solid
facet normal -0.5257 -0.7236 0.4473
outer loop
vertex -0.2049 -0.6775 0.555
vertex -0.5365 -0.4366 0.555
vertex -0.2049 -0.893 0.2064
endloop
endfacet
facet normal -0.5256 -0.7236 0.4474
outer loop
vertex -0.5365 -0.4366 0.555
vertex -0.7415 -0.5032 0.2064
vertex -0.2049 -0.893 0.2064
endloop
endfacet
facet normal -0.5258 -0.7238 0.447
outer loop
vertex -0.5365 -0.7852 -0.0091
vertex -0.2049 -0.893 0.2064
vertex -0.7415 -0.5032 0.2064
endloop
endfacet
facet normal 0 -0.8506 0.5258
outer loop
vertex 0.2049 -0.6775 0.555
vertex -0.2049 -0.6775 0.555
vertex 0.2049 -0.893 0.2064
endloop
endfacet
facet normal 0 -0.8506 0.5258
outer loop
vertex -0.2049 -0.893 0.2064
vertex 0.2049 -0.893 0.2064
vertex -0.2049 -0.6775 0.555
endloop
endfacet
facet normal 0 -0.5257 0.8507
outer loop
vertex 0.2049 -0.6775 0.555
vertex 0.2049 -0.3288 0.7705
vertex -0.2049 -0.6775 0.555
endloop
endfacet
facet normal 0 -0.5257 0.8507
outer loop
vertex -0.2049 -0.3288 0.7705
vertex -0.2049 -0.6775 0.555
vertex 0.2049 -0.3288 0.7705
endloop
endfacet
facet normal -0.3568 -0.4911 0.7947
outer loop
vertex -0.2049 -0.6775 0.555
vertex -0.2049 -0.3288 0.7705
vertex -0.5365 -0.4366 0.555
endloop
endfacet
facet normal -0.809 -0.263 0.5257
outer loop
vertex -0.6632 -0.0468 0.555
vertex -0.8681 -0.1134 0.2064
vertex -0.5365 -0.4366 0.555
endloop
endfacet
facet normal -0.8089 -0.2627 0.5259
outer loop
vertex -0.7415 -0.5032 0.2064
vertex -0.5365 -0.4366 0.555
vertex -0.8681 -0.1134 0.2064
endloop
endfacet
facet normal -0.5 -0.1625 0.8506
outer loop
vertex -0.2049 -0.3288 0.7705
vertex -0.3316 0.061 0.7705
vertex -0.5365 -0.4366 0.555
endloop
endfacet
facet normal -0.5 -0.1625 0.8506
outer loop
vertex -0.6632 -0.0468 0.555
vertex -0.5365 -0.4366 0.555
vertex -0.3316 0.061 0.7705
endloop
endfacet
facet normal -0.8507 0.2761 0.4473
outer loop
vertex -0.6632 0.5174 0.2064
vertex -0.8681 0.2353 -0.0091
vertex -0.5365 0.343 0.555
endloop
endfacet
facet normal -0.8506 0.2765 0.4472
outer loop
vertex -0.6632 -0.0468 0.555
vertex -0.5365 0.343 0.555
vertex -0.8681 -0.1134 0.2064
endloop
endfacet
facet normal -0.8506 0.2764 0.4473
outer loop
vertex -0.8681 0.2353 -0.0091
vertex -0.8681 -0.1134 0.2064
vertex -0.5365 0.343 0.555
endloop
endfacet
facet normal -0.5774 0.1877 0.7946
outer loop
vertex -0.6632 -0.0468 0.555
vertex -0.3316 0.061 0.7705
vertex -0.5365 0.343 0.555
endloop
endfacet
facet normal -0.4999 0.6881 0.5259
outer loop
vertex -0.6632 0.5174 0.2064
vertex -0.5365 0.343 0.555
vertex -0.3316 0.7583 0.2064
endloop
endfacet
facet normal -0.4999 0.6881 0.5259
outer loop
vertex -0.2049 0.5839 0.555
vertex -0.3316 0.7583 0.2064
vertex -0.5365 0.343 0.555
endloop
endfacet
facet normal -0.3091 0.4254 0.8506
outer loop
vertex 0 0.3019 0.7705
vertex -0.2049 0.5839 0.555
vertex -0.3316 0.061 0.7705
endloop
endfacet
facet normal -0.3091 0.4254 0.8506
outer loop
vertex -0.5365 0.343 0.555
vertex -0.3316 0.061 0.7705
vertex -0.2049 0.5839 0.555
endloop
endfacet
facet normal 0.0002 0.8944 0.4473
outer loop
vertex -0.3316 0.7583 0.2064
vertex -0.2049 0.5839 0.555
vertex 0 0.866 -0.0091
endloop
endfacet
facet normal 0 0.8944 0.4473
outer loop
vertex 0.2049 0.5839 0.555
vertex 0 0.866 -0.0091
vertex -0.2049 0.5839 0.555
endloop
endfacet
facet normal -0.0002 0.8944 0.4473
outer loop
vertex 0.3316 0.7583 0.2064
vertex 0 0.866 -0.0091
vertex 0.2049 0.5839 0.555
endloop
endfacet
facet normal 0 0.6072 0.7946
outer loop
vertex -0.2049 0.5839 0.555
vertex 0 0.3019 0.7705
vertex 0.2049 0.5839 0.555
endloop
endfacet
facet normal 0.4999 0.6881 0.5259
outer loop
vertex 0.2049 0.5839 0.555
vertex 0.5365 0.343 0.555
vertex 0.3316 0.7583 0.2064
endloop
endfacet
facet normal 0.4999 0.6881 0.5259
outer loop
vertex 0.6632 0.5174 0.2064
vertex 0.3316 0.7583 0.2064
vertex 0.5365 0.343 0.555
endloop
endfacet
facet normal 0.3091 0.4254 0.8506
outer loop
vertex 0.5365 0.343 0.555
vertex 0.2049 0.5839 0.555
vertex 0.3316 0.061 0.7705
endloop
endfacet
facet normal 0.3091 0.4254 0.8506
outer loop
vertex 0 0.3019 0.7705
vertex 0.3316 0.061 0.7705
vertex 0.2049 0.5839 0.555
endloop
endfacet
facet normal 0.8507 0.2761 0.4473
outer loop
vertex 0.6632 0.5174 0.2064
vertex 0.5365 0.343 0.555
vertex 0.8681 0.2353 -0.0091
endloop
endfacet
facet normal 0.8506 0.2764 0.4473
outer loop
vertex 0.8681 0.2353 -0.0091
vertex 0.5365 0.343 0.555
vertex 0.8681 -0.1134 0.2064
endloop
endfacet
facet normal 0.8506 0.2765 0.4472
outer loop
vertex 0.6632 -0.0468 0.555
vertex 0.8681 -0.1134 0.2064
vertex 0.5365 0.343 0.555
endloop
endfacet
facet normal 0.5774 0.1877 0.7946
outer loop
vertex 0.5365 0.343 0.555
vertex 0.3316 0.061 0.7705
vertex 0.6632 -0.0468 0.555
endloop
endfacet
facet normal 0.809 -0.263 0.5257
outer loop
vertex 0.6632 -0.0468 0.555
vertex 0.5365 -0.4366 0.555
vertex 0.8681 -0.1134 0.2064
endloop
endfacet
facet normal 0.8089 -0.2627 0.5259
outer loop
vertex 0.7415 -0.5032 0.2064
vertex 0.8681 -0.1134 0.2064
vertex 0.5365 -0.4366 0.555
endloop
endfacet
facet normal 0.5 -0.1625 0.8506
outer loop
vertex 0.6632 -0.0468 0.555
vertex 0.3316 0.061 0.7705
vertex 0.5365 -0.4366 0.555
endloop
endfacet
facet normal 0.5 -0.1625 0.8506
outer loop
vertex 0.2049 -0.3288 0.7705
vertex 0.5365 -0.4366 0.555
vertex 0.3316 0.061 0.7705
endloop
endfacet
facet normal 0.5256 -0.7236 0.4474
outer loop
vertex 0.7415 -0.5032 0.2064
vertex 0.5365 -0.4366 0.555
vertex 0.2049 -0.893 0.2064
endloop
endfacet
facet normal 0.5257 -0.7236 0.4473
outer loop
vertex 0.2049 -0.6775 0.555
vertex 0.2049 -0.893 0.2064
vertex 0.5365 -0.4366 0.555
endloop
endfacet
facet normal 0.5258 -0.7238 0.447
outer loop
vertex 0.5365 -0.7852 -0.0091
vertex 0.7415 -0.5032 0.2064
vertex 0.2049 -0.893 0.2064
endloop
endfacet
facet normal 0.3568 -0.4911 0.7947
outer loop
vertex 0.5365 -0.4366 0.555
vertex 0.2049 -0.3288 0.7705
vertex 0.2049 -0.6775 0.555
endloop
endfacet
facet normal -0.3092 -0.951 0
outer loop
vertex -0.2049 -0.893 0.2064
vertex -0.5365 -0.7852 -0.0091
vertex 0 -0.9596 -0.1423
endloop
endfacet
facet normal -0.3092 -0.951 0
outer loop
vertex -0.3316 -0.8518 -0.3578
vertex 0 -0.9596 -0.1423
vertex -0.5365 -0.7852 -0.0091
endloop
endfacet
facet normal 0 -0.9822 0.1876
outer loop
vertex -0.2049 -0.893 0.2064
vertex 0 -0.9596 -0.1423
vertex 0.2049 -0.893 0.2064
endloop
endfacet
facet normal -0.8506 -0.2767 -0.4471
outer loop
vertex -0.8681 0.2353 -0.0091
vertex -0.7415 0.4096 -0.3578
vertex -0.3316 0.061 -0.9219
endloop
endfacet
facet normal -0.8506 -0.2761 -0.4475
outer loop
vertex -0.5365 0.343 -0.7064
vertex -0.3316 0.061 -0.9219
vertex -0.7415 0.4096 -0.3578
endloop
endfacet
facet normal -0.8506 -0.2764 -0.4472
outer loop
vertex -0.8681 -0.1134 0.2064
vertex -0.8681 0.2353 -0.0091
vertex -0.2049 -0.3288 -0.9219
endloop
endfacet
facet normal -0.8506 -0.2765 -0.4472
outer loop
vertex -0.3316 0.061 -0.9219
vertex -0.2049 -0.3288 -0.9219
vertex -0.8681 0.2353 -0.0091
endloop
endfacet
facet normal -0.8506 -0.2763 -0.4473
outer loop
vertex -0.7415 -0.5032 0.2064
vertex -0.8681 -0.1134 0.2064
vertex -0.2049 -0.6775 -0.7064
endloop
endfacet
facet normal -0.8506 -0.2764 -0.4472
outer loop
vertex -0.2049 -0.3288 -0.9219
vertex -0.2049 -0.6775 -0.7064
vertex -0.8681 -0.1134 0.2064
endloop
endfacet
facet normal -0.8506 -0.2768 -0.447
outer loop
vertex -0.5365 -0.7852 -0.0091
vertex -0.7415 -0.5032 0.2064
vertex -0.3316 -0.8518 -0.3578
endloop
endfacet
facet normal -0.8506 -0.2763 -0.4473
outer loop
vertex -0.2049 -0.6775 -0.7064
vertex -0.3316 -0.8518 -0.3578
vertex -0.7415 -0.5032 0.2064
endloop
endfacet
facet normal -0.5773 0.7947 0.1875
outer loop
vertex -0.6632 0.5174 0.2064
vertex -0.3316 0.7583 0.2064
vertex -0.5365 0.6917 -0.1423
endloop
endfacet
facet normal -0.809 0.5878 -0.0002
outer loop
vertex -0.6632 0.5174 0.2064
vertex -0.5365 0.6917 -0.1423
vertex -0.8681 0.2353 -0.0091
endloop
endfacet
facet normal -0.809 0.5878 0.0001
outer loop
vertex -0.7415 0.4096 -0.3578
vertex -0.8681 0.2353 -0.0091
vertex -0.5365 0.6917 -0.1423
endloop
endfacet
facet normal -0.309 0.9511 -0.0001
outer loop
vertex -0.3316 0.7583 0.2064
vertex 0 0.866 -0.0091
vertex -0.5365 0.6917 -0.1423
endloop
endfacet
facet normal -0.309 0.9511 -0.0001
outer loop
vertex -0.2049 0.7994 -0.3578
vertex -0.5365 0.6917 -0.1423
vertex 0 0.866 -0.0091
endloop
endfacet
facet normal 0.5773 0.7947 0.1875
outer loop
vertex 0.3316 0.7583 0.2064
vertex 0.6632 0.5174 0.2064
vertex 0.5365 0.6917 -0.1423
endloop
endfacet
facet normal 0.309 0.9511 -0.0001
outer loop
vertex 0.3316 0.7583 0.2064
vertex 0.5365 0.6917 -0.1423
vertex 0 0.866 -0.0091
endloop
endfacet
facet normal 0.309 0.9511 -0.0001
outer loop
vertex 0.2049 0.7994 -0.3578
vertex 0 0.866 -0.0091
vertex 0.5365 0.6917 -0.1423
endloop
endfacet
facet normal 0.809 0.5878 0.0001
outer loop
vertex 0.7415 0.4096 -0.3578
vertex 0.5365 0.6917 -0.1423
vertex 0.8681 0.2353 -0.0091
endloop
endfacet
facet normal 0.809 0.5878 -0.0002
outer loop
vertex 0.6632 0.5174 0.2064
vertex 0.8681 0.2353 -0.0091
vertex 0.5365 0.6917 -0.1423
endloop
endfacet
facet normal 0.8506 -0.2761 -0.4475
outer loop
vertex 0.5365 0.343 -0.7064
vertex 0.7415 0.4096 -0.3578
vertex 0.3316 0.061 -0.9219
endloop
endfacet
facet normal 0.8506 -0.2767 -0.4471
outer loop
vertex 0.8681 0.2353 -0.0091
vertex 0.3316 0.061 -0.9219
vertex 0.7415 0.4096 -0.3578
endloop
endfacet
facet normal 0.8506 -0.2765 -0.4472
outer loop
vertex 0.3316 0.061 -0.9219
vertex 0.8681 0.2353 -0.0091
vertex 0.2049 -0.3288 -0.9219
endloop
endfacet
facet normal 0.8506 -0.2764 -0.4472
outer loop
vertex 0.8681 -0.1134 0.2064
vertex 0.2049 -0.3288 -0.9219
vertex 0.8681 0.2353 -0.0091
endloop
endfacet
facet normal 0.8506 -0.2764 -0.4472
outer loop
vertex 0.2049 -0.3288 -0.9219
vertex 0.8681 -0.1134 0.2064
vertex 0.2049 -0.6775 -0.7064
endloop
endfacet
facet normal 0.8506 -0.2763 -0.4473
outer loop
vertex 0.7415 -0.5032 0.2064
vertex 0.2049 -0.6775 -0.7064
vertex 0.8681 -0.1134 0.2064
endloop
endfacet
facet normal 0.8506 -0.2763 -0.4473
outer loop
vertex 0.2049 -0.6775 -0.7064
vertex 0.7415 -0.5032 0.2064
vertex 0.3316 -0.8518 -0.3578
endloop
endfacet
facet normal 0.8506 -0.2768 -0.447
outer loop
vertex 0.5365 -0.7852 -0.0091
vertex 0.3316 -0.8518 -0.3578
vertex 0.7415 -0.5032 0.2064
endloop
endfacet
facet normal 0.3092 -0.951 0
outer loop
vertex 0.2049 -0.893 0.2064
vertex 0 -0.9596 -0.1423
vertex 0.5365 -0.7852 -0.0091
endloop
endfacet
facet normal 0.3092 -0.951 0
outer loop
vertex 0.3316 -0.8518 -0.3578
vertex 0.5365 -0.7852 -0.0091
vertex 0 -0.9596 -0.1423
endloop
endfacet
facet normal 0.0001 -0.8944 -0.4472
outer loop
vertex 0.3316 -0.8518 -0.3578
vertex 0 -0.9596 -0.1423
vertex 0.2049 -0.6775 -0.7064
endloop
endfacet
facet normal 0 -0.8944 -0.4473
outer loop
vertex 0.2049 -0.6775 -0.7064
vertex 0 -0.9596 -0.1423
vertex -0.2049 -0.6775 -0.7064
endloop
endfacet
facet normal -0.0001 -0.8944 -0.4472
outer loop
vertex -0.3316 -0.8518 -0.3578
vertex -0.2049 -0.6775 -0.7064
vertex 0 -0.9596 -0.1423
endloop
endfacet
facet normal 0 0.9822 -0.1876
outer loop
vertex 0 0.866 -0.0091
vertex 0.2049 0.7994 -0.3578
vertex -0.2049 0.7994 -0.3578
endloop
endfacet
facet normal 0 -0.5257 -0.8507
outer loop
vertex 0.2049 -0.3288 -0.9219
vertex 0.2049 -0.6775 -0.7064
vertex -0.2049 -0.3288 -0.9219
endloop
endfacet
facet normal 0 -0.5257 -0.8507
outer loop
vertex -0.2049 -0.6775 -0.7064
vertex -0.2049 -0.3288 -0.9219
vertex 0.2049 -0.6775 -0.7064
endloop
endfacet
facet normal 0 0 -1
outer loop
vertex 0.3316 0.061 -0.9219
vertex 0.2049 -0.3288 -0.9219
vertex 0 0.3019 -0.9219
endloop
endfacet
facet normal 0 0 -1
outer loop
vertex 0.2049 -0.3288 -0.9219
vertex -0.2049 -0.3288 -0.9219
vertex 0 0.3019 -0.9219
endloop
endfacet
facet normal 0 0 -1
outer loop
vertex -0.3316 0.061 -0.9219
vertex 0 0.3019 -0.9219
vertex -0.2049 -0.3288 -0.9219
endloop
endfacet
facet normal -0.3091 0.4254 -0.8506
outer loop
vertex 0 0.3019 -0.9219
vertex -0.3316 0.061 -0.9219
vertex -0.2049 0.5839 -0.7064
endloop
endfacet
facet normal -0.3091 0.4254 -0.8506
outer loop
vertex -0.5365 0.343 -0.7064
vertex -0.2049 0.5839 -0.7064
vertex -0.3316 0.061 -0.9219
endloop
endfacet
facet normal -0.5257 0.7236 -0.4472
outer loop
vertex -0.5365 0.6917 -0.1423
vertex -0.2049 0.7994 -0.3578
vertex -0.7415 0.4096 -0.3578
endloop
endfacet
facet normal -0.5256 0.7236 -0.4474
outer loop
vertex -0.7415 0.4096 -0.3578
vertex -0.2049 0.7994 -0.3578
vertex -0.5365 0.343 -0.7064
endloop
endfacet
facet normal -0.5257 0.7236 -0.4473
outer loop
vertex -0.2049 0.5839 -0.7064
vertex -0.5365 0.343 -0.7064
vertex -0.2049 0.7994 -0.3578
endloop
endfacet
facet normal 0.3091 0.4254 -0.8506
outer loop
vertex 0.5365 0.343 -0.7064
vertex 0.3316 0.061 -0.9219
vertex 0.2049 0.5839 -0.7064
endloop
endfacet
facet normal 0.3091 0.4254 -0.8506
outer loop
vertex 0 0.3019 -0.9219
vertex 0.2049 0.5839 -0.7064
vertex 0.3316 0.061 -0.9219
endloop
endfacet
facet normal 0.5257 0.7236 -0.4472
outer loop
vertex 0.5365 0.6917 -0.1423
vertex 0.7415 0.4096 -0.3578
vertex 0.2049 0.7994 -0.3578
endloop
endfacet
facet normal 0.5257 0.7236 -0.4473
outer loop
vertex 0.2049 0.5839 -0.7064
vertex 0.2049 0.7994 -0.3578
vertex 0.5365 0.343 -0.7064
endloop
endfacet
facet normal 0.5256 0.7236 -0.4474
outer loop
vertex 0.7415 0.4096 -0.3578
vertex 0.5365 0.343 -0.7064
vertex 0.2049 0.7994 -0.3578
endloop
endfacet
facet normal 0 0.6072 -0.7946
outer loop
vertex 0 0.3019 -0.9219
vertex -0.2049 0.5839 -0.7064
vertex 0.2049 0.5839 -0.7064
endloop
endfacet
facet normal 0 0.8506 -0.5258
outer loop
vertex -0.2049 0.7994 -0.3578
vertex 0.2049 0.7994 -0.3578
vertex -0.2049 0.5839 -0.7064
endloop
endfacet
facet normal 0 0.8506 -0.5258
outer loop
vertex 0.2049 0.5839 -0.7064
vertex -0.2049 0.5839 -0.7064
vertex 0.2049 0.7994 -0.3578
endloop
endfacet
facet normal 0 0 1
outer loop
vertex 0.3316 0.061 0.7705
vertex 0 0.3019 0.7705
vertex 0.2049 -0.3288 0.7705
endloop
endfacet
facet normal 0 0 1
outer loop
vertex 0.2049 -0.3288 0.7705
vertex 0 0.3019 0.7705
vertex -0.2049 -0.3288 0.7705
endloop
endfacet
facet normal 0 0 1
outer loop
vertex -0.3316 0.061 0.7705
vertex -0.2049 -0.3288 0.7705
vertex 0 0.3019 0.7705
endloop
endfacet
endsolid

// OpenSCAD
polyhedron( points = [[-0.204932372033578, -0.677493532712244, 0.555030949430022], [-0.536519915733541, -0.436581080420992, 0.555030949430022], [-0.663175087096445, -0.0467765444287305, 0.555030949430022], [-0.53651991562854, 0.343027991529413, 0.555030949430022], [-0.204932371976951, 0.583940443694539, 0.555030949430022], [0.204932372436504, 0.583940443657733, 0.555030949430022], [0.536519916044834, 0.343027991433062, 0.555030949430022], [0.663175087442736, -0.046776544547829, 0.555030949430022], [0.536519916009835, -0.436581080517347, 0.555030949430022], [0.204932372379882, -0.677493532712244, 0.555030949430022], [-0.204932372015176, -0.892972180813965, 0.206379173298529], [-0.741452287927195, -0.503167644728132, 0.206379173290448], [-0.868107459254048, -0.113363108525263, 0.206379173245267], [-0.663175086949701, 0.517353879628984, 0.206379173276984], [-0.331587543359192, 0.758266331727446, 0.206379173245267], [0.331587543902576, 0.758266331652034, 0.206379173276985], [0.663175087428625, 0.517353879464854, 0.206379173245267], [0.868107459589536, -0.113363108735999, 0.206379173276984], [0.741452288166861, -0.503167644615682, 0.206379173245267], [0.204932372334574, -0.89297218079982, 0.206379173321417], [7.13984789674949e-11, -0.959558744399715, -0.142272602995109], [-0.536519915762107, -0.785232856830677, -0.00909947454605164], [-0.868107459166349, 0.235288667651403, -0.00909947467406477], [3.14737239174699e-10, 0.866005655613546, -0.00909947467406477], [0.868107459600155, 0.235288667382093, -0.00909947467406477], [0.536519915904082, -0.785232856632149, -0.00909947467406477], [-0.331587543663108, -0.851819420420464, -0.357751250671083], [-0.204932372488844, -0.677493531717671, -0.706403026568954], [-0.20493237287906, -0.328841755241965, -0.921881673905776], [-0.331587544696791, 0.0609627807280328, -0.921881673285749], [-0.536519917125726, 0.343027992195865, -0.706403024869331], [-0.741452288205879, 0.409614555978179, -0.35775125077766], [0.331587543555195, -0.851819419809132, -0.357751250843172], [0.204932371924615, -0.677493531323388, -0.706403026708226], [0.204932371930669, -0.328841756782507, -0.921881674582516], [0.331587543404967, 0.0609627791714075, -0.921881674733224], [0.536519915723323, 0.343027991230404, -0.706403026985487], [0.741452288101295, 0.409614555404569, -0.357751250824642], [-1.2955487911244e-09, 0.301875233400211, -0.921881673116684], [-0.204932373763327, 0.583940444808961, -0.706403024715693], [0.204932372099698, 0.583940443573465, -0.706403027075219], [-0.204932371811907, 0.799419091155054, -0.357751250678177], [0.204932372621501, 0.799419092008962, -0.35775125077766], [0.536519916213919, 0.691679768045963, -0.142272602692928], [-0.5365199159864, 0.691679767959658, -0.142272602692928], [-0.204932371650793, -0.328841756356331, 0.770509597019141], [0.204932372361475, -0.328841756509916, 0.770509597244762], [0.331587543765816, 0.0609627794121088, 0.770509597244762], [1.9382794864288e-10, 0.301875231594945, 0.770509597244763], [-0.331587543052429, 0.0609627794792774, 0.770509596966454]], faces = [[0, 1, 11, 21, 10], [0, 10, 19, 9], [0, 9, 46, 45], [0, 45, 1], [1, 2, 12, 11], [1, 45, 49, 2], [2, 3, 13, 22, 12], [2, 49, 3], [3, 4, 14, 13], [3, 49, 48, 4], [4, 5, 15, 23, 14], [4, 48, 5], [5, 6, 16, 15], [5, 48, 47, 6], [6, 7, 17, 24, 16], [6, 47, 7], [7, 8, 18, 17], [7, 47, 46, 8], [8, 9, 19, 25, 18], [8, 46, 9], [10, 21, 26, 20], [10, 20, 19], [11, 12, 22, 31, 30, 29, 28, 27, 26, 21], [13, 14, 44], [13, 44, 31, 22], [14, 23, 41, 44], [15, 16, 43], [15, 43, 42, 23], [16, 24, 37, 43], [17, 18, 25, 32, 33, 34, 35, 36, 37, 24], [19, 20, 32, 25], [20, 26, 27, 33, 32], [23, 42, 41], [27, 28, 34, 33], [28, 29, 38, 35, 34], [29, 30, 39, 38], [30, 31, 44, 41, 39], [35, 38, 40, 36], [36, 40, 42, 43, 37], [38, 39, 40], [39, 41, 42, 40], [45, 46, 47, 48, 49]]);
